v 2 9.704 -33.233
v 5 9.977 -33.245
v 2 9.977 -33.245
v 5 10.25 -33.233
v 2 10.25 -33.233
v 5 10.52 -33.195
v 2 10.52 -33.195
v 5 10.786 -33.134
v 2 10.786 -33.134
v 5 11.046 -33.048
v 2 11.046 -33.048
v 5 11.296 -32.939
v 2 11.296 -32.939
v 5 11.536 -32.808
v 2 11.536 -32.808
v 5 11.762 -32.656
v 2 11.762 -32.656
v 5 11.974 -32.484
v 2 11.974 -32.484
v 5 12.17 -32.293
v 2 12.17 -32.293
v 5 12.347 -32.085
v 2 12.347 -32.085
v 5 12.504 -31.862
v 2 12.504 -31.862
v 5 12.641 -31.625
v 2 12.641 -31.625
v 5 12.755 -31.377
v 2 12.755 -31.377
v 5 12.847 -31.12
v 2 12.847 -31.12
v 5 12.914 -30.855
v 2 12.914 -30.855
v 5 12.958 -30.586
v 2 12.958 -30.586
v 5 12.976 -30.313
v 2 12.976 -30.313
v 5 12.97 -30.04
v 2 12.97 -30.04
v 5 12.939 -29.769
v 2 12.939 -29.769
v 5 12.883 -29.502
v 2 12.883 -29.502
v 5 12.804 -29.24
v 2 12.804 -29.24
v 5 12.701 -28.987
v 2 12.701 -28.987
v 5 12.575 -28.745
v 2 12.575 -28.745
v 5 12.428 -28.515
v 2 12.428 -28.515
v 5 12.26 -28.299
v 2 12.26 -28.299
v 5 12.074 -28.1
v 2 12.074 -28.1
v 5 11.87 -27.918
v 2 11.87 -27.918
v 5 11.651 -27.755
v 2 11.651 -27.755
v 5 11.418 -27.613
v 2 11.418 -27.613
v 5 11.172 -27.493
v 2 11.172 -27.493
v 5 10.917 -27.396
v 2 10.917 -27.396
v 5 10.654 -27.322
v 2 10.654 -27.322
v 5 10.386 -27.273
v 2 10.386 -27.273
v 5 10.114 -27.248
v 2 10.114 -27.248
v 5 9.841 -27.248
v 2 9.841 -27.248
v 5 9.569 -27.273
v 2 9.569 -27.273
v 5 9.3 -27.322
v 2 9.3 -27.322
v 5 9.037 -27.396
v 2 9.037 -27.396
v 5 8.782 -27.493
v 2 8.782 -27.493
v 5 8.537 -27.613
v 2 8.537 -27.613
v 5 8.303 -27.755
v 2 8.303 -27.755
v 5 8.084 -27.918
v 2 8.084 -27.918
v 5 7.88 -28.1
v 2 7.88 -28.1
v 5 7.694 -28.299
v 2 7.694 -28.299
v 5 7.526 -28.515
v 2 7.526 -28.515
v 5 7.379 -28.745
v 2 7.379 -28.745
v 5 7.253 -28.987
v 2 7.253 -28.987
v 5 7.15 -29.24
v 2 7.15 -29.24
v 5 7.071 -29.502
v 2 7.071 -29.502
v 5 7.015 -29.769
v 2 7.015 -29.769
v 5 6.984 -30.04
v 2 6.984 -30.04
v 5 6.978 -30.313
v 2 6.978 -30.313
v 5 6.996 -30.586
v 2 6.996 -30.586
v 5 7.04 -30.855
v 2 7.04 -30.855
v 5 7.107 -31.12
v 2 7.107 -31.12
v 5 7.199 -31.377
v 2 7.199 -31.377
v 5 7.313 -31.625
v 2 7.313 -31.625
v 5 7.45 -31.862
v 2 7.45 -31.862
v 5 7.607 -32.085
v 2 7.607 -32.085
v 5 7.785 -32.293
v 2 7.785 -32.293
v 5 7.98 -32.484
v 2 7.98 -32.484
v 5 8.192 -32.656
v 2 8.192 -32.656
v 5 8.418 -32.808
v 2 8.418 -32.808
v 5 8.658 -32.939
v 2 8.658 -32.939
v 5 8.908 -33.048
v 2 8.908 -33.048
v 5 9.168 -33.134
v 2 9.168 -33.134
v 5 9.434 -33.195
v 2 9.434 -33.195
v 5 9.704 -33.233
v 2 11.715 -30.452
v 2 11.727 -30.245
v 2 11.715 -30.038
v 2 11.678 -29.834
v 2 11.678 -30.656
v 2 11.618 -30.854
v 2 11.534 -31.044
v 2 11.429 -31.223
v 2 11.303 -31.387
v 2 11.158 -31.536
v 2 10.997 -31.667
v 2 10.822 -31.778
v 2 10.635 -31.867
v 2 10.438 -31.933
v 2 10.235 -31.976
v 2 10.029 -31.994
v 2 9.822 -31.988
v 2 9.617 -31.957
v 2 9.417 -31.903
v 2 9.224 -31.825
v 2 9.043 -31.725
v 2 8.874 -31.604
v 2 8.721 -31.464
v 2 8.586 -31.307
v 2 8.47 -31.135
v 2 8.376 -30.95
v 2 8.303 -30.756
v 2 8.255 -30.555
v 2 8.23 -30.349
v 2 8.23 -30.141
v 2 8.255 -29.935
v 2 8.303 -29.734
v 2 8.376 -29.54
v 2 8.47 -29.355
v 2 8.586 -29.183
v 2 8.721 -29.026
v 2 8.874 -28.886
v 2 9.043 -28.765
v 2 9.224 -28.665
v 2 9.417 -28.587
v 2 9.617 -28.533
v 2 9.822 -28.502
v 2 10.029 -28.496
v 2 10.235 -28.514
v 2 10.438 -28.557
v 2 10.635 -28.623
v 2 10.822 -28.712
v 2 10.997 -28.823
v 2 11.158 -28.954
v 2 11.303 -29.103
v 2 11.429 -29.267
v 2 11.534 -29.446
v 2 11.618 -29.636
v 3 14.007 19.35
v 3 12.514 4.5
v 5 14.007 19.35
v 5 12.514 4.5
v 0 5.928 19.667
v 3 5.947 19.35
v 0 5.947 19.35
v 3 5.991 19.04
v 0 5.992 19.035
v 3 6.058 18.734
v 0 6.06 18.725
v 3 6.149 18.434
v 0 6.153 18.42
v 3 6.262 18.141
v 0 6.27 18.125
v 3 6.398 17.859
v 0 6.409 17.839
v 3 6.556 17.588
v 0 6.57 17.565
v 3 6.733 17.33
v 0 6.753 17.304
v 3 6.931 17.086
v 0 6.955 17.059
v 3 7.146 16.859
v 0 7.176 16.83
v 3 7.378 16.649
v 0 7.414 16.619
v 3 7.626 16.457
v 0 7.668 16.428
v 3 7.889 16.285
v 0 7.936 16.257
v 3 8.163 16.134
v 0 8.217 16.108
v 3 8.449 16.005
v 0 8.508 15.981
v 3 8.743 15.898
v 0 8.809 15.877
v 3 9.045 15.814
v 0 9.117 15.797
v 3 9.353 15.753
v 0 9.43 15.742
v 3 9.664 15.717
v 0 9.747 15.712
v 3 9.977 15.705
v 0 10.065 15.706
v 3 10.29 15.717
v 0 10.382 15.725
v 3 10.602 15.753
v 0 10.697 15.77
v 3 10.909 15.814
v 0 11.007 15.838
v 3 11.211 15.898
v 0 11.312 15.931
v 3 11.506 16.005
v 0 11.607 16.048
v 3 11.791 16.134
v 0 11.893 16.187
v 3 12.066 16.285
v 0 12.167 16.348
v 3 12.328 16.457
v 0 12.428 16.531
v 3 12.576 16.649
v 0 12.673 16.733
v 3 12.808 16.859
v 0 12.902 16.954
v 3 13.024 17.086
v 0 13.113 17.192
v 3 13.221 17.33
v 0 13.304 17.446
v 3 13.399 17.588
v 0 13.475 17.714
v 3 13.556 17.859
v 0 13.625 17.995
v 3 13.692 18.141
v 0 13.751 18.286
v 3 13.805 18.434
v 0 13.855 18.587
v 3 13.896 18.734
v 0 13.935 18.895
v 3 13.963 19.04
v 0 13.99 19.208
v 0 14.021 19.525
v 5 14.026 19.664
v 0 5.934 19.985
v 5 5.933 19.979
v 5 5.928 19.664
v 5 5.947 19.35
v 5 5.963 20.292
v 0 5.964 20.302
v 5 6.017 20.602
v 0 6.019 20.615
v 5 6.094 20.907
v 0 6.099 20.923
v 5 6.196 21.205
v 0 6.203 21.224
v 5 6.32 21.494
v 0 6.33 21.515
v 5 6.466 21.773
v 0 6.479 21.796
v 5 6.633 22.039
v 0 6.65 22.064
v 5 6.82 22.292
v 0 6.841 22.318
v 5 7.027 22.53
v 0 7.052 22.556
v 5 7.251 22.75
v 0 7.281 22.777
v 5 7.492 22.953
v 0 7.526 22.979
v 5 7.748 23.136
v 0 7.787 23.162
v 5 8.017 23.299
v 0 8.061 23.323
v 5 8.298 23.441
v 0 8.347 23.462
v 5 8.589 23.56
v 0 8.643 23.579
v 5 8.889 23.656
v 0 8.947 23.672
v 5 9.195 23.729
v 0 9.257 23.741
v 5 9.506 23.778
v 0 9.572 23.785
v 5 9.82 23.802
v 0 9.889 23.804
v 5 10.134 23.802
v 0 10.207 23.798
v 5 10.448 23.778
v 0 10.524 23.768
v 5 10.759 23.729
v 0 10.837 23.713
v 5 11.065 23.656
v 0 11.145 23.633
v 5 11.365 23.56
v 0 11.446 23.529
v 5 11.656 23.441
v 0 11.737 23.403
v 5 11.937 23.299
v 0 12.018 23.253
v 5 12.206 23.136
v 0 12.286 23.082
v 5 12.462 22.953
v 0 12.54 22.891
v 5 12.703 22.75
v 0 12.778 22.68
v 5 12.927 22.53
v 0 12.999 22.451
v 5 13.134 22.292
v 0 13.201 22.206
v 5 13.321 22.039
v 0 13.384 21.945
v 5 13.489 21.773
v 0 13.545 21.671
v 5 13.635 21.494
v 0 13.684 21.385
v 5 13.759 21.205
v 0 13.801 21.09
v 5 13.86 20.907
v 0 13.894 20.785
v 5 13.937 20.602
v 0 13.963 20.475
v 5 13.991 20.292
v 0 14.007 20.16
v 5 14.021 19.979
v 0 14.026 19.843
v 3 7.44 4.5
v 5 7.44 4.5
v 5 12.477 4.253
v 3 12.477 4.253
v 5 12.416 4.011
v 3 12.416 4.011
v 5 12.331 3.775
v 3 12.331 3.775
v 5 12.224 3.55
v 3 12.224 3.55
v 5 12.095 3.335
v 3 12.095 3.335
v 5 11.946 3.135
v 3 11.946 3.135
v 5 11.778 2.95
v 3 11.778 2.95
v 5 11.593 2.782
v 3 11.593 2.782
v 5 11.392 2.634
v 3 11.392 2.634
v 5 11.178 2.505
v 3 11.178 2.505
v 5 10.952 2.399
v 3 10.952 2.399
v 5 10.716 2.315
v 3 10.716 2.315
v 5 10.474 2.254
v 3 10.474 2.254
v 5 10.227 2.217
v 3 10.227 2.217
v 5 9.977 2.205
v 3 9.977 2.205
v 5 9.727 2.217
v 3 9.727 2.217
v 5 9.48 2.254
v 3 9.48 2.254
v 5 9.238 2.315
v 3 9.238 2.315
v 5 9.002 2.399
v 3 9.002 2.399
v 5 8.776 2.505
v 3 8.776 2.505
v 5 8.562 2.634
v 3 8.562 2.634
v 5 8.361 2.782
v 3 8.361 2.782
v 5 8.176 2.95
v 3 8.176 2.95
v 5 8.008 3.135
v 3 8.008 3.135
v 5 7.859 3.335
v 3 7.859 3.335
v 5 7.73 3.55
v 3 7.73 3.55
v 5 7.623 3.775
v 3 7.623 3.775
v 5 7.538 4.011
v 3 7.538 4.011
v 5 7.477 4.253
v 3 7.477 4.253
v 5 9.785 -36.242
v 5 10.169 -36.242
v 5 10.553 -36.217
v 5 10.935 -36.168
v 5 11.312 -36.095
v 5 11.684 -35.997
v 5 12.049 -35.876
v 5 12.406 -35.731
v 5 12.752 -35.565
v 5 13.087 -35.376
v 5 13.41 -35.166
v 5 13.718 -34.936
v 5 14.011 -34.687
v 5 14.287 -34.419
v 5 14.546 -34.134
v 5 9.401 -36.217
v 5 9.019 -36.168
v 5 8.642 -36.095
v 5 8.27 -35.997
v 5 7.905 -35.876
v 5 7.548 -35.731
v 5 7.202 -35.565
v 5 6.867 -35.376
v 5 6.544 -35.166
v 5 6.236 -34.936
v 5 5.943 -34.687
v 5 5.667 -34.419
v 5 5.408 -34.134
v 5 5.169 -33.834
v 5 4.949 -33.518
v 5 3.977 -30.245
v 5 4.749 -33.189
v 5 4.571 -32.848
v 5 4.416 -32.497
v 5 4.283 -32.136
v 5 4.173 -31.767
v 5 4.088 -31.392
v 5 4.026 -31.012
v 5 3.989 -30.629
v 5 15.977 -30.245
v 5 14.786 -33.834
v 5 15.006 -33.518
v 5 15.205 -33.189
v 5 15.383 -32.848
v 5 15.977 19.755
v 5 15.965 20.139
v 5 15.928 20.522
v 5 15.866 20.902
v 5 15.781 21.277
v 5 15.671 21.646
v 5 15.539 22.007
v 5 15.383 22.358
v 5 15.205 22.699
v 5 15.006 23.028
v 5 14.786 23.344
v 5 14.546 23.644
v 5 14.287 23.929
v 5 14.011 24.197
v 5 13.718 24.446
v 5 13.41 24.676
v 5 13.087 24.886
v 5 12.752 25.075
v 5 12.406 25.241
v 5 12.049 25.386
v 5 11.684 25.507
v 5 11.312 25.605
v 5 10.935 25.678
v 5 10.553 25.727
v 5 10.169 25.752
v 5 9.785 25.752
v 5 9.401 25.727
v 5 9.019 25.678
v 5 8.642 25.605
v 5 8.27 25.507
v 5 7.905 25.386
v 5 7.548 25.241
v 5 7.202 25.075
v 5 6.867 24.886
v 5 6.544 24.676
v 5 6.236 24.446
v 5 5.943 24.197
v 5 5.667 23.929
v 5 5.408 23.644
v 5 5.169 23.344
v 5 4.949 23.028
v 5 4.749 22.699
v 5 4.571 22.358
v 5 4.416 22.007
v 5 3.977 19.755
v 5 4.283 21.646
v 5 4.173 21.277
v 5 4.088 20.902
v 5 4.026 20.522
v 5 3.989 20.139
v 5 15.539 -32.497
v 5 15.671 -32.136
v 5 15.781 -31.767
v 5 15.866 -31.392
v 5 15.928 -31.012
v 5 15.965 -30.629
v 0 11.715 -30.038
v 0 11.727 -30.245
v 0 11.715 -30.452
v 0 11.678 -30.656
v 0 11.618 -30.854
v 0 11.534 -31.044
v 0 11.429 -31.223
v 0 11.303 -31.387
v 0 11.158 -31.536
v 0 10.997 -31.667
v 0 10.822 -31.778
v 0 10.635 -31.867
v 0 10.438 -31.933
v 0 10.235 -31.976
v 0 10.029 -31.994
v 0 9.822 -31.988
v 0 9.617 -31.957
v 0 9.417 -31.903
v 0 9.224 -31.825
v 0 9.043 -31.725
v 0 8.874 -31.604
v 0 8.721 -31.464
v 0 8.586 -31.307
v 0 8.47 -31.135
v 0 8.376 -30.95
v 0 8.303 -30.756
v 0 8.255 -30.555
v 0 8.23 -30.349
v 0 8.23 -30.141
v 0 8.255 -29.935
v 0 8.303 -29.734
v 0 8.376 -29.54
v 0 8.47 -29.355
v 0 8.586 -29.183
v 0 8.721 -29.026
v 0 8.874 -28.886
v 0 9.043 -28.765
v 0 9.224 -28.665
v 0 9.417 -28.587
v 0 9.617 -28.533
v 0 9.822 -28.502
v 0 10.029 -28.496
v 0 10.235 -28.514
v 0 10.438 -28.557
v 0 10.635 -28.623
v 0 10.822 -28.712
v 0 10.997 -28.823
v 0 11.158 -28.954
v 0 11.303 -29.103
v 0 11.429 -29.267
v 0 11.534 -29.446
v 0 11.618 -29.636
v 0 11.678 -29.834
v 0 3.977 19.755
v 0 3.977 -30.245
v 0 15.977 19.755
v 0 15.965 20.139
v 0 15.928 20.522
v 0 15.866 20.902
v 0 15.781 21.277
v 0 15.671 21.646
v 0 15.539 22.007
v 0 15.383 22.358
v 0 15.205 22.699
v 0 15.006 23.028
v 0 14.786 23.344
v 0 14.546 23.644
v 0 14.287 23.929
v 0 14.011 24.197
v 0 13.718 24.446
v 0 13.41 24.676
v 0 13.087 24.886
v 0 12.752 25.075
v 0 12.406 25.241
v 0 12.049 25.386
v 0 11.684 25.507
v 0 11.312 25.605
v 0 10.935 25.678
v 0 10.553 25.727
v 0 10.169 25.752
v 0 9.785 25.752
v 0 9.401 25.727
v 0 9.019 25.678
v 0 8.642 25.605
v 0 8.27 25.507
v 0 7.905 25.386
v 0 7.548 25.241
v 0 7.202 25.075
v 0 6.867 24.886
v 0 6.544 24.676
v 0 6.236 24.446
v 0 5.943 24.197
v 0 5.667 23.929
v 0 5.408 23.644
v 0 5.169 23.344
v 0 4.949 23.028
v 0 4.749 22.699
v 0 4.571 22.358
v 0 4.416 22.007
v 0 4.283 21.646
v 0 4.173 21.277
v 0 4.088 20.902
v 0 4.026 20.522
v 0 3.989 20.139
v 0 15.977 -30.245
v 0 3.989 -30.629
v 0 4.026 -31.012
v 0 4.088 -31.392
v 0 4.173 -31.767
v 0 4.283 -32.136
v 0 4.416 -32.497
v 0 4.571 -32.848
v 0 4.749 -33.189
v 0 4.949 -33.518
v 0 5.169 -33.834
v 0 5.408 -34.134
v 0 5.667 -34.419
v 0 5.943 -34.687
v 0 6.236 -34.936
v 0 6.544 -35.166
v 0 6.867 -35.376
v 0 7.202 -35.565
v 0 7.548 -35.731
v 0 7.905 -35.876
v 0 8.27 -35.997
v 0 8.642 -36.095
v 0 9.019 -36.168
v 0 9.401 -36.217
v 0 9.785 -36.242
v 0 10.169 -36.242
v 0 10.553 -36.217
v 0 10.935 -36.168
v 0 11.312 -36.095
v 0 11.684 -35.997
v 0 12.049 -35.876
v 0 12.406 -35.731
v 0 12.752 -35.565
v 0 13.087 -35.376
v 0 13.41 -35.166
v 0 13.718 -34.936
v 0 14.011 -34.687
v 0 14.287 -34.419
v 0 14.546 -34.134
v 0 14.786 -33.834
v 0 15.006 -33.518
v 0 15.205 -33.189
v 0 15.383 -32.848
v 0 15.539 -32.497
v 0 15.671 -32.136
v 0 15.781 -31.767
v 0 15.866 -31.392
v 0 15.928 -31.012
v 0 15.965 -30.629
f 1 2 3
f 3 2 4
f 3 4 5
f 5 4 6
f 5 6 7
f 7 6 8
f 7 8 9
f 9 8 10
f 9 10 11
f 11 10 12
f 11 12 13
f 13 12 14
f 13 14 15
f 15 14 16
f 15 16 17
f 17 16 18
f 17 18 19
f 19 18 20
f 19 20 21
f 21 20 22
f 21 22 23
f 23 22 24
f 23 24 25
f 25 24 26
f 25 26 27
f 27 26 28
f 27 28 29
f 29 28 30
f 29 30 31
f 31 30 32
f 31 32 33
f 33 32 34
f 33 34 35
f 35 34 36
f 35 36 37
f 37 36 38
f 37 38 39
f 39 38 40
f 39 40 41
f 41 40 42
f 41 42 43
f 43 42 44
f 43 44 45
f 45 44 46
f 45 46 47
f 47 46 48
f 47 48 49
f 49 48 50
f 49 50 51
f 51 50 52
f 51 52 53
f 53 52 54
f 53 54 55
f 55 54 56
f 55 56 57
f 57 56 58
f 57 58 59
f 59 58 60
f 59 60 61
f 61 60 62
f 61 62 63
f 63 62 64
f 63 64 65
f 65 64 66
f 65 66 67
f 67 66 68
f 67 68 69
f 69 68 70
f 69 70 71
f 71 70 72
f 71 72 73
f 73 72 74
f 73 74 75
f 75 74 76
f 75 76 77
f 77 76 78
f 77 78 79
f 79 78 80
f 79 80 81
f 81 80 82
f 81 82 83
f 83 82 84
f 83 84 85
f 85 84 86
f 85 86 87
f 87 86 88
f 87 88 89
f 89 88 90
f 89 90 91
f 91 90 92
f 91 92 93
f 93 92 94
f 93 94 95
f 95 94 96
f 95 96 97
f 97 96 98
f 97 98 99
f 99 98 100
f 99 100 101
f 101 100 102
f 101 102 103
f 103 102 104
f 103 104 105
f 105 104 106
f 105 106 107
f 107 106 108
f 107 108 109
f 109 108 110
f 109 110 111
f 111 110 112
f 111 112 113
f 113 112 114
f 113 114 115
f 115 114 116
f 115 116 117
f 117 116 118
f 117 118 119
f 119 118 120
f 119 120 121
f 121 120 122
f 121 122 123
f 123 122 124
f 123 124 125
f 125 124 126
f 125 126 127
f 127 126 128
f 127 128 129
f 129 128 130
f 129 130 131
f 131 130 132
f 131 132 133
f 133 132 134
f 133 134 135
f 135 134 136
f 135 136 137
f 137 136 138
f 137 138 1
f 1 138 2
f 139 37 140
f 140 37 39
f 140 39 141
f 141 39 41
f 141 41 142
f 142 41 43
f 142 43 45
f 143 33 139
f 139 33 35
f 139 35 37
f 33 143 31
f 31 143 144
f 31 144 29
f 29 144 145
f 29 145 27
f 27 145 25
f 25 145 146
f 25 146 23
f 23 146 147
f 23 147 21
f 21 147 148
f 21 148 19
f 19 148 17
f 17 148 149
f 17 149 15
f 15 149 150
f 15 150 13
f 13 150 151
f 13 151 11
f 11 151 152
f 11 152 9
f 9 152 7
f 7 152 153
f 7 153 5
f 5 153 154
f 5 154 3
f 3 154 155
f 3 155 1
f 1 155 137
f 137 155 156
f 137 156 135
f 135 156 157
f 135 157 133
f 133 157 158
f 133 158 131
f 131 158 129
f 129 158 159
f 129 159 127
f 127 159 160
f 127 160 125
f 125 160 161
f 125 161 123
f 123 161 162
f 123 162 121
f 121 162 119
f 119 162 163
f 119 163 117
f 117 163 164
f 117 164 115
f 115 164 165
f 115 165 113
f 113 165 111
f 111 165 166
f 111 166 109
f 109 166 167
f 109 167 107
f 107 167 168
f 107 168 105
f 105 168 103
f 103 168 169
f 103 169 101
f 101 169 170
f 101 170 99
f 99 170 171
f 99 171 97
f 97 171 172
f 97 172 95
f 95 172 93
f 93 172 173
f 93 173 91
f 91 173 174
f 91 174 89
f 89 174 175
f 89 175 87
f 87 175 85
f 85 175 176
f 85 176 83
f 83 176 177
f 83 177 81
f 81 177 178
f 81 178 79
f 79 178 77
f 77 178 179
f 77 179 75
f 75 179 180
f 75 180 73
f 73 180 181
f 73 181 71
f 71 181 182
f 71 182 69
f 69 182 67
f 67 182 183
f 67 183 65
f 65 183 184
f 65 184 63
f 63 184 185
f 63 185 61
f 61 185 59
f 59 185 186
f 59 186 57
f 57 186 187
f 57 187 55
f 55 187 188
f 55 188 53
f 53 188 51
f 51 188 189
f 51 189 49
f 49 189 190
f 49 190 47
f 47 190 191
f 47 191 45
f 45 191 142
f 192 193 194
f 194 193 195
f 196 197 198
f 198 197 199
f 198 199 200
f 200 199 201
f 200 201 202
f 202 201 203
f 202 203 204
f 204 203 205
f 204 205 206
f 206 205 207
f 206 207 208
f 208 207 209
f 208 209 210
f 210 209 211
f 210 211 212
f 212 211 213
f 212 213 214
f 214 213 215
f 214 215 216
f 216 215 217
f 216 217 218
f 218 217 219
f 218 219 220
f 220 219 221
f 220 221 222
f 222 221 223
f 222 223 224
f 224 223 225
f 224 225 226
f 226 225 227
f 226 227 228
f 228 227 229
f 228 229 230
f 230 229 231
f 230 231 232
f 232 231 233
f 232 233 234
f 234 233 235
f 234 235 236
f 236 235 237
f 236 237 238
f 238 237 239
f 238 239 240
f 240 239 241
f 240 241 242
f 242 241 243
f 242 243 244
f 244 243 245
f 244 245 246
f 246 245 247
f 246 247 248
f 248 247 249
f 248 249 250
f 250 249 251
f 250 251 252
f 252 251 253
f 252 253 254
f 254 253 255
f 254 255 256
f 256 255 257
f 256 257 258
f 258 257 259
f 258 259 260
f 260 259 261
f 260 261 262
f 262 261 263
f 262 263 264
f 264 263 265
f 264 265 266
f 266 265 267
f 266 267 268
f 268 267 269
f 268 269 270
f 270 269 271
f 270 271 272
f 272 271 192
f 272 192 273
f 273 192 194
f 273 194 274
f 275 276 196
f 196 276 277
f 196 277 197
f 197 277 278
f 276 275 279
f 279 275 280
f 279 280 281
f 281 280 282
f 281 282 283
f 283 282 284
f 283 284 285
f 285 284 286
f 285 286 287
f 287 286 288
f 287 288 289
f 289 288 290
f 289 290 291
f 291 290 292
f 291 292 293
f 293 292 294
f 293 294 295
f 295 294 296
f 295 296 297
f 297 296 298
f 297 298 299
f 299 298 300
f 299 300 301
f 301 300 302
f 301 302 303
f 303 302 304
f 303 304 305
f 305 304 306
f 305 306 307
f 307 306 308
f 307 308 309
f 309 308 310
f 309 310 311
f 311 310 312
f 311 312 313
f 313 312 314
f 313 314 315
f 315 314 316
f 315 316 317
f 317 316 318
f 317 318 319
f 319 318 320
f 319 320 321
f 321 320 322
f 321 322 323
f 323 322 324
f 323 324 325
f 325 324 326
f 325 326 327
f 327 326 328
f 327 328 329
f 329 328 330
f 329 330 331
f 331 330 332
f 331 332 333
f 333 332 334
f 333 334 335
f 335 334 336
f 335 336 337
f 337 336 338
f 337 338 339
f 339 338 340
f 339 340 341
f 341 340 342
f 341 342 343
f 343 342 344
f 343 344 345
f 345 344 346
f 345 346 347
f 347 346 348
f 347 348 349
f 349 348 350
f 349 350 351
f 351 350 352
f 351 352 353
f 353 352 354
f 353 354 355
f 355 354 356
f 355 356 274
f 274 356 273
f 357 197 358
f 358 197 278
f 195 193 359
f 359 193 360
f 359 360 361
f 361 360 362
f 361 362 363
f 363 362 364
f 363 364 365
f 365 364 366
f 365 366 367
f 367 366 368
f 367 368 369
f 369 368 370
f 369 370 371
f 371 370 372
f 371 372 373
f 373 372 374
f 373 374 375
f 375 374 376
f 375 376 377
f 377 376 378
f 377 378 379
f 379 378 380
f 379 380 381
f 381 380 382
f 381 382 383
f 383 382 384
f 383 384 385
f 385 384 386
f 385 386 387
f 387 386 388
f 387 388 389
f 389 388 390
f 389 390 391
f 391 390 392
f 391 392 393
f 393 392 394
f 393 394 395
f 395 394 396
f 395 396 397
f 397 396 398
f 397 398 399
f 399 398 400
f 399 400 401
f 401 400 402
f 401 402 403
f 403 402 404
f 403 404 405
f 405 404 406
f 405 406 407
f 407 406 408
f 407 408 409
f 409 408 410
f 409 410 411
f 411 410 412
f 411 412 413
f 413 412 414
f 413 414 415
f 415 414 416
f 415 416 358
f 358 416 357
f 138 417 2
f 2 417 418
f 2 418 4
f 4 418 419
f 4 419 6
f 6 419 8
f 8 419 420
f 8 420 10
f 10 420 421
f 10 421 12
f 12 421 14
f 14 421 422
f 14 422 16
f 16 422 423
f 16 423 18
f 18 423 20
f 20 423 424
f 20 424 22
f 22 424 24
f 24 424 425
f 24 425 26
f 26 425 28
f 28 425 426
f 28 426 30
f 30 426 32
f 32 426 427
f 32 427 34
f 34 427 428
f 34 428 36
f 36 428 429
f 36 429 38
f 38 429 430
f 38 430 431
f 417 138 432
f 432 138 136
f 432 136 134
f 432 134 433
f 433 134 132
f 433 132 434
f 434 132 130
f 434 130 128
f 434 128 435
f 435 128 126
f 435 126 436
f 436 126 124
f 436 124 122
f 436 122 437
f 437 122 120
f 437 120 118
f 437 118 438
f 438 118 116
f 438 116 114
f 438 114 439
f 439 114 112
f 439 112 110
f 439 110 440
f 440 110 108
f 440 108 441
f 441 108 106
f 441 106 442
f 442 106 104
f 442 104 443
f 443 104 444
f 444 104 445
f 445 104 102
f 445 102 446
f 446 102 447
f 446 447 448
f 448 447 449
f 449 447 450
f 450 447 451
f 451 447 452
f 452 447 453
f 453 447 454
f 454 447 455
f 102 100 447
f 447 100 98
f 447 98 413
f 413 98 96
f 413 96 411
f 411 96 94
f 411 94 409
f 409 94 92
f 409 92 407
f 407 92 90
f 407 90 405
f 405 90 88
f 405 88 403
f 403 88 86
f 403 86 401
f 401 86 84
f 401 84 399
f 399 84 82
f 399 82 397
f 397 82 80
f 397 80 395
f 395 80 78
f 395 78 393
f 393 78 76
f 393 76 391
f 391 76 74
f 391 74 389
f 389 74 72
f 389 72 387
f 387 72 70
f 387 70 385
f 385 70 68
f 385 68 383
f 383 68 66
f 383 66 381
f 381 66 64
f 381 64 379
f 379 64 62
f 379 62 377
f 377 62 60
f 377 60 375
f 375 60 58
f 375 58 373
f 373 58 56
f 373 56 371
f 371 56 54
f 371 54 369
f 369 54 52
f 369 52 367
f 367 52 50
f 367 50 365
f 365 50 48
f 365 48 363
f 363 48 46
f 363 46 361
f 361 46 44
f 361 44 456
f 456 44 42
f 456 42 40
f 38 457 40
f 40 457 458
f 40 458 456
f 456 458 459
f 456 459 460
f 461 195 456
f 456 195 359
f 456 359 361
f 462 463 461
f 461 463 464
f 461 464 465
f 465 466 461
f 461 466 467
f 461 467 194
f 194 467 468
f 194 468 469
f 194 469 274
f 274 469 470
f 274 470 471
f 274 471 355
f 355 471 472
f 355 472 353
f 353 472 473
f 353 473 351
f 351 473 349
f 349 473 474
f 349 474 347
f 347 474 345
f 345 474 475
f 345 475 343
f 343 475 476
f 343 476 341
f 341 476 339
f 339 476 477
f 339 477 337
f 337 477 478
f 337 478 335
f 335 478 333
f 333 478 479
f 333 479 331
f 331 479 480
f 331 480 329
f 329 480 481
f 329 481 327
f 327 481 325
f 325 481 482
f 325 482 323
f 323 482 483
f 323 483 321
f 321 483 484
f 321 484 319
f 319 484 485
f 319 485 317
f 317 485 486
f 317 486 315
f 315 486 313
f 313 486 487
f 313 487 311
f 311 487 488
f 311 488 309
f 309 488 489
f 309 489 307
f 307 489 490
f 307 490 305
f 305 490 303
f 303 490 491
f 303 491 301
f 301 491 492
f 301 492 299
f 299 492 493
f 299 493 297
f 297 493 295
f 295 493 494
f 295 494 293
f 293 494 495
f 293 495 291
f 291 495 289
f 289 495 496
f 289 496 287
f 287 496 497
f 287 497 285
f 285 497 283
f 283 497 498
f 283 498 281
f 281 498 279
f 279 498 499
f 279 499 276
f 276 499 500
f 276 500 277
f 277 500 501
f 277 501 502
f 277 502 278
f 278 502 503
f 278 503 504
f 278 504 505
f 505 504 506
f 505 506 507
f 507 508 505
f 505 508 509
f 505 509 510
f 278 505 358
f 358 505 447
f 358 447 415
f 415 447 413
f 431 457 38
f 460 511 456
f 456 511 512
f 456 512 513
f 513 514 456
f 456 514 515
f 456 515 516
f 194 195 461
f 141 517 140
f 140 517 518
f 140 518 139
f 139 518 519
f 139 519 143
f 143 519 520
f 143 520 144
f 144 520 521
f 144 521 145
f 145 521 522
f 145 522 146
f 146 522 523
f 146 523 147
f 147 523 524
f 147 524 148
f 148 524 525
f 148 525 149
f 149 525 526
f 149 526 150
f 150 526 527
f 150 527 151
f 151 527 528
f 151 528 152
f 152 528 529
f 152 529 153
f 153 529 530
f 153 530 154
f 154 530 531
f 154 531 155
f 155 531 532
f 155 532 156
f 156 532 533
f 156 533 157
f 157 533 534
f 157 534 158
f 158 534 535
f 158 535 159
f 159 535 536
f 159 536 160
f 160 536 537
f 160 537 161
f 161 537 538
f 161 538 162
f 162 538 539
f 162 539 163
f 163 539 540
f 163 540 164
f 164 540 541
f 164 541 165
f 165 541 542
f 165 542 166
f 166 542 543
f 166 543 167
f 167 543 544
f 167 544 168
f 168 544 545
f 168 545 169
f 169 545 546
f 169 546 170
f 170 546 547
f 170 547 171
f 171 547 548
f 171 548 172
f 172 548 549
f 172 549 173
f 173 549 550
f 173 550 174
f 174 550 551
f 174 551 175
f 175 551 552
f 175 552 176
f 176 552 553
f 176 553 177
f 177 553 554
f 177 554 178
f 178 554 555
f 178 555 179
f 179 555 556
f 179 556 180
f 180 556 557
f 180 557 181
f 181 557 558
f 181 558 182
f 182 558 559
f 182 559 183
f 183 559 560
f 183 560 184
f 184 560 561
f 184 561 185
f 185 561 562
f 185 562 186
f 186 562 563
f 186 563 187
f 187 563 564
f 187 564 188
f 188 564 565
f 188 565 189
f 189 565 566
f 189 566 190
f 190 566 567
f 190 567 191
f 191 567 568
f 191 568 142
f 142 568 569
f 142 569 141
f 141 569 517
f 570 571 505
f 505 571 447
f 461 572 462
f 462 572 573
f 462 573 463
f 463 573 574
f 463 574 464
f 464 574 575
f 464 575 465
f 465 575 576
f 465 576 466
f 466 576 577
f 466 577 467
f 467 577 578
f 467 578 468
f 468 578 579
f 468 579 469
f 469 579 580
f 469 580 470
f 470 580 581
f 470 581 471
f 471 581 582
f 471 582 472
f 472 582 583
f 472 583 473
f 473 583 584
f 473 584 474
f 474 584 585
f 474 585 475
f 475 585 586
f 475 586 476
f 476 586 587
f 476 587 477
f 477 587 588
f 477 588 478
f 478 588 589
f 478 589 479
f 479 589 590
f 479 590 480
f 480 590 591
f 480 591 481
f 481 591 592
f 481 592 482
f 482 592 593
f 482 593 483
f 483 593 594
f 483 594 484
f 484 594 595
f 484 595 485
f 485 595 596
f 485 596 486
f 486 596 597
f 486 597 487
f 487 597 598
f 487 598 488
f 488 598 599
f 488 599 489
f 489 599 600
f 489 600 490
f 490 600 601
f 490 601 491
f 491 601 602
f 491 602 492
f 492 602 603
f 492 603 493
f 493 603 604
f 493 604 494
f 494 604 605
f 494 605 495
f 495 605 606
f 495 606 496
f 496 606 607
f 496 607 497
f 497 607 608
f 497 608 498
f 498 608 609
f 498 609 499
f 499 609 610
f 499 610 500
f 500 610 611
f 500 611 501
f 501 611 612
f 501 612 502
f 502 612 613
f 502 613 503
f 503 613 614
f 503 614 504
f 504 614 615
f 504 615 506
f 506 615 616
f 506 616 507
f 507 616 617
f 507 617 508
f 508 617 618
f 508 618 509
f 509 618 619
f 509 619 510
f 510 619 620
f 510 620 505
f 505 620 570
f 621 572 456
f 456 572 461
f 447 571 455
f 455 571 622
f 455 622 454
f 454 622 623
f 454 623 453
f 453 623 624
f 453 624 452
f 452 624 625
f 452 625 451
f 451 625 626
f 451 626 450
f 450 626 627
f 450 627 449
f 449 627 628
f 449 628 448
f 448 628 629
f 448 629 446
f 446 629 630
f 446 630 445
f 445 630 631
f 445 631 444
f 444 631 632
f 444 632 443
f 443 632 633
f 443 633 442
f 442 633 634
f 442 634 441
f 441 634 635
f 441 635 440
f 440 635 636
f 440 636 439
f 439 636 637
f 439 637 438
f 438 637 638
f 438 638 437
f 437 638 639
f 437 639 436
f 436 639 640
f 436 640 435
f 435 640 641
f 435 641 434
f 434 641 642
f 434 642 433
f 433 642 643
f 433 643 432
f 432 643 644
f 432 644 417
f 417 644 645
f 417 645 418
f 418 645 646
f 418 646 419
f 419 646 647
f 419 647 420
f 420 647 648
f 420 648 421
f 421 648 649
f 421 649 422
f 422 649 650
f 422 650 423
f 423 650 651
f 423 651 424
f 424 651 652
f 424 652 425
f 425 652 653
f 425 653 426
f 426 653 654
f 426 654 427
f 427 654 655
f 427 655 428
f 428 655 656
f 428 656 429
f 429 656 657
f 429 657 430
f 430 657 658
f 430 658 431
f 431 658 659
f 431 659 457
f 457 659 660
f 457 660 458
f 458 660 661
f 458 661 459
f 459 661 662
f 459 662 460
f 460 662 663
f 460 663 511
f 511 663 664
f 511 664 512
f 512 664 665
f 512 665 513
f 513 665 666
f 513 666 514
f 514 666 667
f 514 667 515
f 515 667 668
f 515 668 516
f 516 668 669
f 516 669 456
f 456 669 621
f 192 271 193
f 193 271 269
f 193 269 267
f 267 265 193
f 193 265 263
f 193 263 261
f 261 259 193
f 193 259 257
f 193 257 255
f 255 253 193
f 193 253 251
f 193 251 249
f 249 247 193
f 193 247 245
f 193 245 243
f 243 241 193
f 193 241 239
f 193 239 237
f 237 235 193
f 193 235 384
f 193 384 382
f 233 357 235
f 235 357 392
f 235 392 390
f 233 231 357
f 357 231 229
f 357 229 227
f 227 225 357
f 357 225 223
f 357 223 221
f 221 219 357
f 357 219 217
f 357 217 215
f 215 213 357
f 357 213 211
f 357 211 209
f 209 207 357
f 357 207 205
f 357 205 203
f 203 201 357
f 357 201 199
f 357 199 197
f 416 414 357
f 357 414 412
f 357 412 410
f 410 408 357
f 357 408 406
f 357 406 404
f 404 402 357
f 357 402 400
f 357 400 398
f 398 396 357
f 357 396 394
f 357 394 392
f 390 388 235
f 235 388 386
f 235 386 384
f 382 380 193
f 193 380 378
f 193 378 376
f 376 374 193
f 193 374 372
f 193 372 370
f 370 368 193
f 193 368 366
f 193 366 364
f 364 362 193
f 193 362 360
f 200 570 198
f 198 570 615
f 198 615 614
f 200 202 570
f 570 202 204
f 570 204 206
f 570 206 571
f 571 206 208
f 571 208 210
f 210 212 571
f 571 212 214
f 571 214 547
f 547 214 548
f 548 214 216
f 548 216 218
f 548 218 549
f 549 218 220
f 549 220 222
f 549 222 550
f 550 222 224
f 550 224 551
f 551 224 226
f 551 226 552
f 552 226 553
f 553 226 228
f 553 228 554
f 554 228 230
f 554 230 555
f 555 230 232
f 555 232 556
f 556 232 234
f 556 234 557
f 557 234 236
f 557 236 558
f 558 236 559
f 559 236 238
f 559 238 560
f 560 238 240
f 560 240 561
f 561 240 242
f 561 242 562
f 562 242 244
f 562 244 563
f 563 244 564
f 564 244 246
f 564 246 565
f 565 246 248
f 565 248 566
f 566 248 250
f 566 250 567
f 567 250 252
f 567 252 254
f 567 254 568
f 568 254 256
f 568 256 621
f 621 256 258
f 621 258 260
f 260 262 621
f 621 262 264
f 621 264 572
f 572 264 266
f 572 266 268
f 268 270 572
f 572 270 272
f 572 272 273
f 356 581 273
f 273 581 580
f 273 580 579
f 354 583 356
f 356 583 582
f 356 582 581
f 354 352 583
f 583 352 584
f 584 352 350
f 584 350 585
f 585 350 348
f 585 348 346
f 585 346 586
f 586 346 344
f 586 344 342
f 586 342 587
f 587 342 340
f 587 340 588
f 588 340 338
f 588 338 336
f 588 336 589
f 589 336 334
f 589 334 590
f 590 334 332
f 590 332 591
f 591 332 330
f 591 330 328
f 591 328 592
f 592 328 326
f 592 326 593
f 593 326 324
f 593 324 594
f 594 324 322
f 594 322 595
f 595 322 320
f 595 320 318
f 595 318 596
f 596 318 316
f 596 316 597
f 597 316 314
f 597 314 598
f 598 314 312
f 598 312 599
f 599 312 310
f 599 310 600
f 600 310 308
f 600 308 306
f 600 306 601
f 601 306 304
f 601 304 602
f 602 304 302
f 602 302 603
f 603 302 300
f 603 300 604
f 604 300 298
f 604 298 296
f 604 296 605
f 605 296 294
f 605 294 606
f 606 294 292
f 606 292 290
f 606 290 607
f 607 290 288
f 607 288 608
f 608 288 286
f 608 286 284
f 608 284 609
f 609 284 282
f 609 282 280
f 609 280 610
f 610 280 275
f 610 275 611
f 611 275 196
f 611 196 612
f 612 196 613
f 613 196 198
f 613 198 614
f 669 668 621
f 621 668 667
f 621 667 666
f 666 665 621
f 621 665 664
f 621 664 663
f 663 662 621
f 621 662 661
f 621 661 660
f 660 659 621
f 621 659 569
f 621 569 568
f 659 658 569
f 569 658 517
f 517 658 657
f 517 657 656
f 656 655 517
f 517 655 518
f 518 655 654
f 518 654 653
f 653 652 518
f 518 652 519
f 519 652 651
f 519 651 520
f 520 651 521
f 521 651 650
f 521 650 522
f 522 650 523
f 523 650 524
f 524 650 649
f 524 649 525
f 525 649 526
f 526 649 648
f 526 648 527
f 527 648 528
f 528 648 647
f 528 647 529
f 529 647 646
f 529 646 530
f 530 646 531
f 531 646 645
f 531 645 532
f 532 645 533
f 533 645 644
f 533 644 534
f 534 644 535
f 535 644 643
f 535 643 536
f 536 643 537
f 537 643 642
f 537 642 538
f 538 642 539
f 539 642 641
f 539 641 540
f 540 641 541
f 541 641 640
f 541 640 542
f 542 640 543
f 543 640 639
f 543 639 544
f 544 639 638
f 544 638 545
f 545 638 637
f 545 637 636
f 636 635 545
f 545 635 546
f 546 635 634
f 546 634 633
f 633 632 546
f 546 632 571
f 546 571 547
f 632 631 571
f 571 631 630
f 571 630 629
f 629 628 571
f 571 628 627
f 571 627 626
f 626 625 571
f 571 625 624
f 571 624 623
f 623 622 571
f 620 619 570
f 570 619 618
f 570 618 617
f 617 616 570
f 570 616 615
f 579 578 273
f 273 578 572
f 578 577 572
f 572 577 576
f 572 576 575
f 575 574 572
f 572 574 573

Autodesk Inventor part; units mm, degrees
ref_plane "YZ Plane" through (0, 0, 0) normal (1, 0, 0) x (0, 1, 0)
ref_plane "XZ Plane" through (0, 0, 0) normal (0, 1, 0) x (-1, 0, 0)
ref_plane "XY Plane" through (0, 0, 0) normal (0, 0, 1) x (1, 0, 0)
sketch "Szkic1" plane through (0, 0, 0) normal (1, 0, 0) x (0, 1, 0)
  line L0 (9.9771, 19.755) -> (9.9771, -30.245) construction
  line L1 (3.9771, 19.755) -> (3.9771, -30.245)
  line L2 (15.9771, -30.245) -> (15.9771, 19.755)
  arc A0 (15.9771, 19.755) -> (3.9771, 19.755) centre (9.9771, 19.755) ccw
  arc A1 (3.9771, -30.245) -> (15.9771, -30.245) centre (9.9771, -30.245) ccw
  circle A2 centre (9.9771, 19.755) radius 1.6
  circle A3 centre (9.9771, -30.245) radius 1.75
  point P0 (0, 0)
  point P1 (9.9771, -5.245)
  dimension "d0" = 50
  dimension "d1" = 12
  dimension "d2" = 3.2
  dimension "d3" = 3.5
extrude "Wyciągnięcie proste1" add sketch "Szkic1" along normal blind 3
sketch "Szkic4" plane through (3, 0, 0) normal (1, 0, 0) x (0, 0, -1)
  circle A0 centre (-19.755, 9.9771) radius 1.6 projected
  arc A1 (-19.38, 13.7083) -> (-19.38, 6.2459) centre (-19.755, 9.9771) ccw
  arc A2 (-4.53, 7.7383) -> (-4.53, 12.2158) centre (-4.755, 9.9771) ccw
  line L0 (-19.38, 13.7083) -> (-4.53, 12.2158)
  line L1 (-19.38, 6.2459) -> (-4.53, 7.7383)
  line L2 (-4.5, 12.5143) -> (-19.35, 14.0068)
  arc A3 (-19.35, 14.0068) -> (-19.35, 5.9474) centre (-19.755, 9.9771) ccw
  line L3 (-19.35, 5.9474) -> (-4.5, 7.4398)
  arc A4 (-4.5, 7.4398) -> (-4.5, 12.5143) centre (-4.755, 9.9771) ccw
  circle A5 centre (-19.755, 9.9771) radius 4.05
  arc A6 (30.245, 3.9771) -> (30.245, 15.9771) centre (30.245, 9.9771) ccw projected
  line L4 (30.245, 15.9771) -> (-19.755, 15.9771) projected
  arc A7 (-19.755, 15.9771) -> (-19.755, 3.9771) centre (-19.755, 9.9771) ccw projected
  line L5 (-19.755, 3.9771) -> (30.245, 3.9771) projected
  circle A8 centre (30.245, 9.9771) radius 1.75 projected
  circle A9 centre (-19.755, 9.9771) radius 1.6 projected
  point P0 (0, 0)
  point P1 (-19.35, 14.0068)
  dimension "d12" = 7.5
  dimension "d13" = 4.5
  dimension "d14" = 15
  dimension "d15" = 0.3
extrude "Wyciągnięcie proste4" add sketch "Szkic4" along normal blind 2 contours L5 A7 L4 A6
extrude "Wyciągnięcie proste5" cut sketch "Szkic4" against normal blind 3 contours A0 | L0 A5 L1 A1 | A1 L1 A5 A3 L0
sketch "Szkic5" plane through (5, 0, 0) normal (1, 0, 0) x (0, 0, -1)
  circle A0 centre (30.245, 9.9771) radius 1.75 projected
  circle A1 centre (30.245, 9.9771) radius 3
  point P0 (0, 0)
  dimension "d20" = 6
extrude "Wyciągnięcie proste6" cut sketch "Szkic5" against normal blind 3 contours A0 | A1
properties part number "belka"
